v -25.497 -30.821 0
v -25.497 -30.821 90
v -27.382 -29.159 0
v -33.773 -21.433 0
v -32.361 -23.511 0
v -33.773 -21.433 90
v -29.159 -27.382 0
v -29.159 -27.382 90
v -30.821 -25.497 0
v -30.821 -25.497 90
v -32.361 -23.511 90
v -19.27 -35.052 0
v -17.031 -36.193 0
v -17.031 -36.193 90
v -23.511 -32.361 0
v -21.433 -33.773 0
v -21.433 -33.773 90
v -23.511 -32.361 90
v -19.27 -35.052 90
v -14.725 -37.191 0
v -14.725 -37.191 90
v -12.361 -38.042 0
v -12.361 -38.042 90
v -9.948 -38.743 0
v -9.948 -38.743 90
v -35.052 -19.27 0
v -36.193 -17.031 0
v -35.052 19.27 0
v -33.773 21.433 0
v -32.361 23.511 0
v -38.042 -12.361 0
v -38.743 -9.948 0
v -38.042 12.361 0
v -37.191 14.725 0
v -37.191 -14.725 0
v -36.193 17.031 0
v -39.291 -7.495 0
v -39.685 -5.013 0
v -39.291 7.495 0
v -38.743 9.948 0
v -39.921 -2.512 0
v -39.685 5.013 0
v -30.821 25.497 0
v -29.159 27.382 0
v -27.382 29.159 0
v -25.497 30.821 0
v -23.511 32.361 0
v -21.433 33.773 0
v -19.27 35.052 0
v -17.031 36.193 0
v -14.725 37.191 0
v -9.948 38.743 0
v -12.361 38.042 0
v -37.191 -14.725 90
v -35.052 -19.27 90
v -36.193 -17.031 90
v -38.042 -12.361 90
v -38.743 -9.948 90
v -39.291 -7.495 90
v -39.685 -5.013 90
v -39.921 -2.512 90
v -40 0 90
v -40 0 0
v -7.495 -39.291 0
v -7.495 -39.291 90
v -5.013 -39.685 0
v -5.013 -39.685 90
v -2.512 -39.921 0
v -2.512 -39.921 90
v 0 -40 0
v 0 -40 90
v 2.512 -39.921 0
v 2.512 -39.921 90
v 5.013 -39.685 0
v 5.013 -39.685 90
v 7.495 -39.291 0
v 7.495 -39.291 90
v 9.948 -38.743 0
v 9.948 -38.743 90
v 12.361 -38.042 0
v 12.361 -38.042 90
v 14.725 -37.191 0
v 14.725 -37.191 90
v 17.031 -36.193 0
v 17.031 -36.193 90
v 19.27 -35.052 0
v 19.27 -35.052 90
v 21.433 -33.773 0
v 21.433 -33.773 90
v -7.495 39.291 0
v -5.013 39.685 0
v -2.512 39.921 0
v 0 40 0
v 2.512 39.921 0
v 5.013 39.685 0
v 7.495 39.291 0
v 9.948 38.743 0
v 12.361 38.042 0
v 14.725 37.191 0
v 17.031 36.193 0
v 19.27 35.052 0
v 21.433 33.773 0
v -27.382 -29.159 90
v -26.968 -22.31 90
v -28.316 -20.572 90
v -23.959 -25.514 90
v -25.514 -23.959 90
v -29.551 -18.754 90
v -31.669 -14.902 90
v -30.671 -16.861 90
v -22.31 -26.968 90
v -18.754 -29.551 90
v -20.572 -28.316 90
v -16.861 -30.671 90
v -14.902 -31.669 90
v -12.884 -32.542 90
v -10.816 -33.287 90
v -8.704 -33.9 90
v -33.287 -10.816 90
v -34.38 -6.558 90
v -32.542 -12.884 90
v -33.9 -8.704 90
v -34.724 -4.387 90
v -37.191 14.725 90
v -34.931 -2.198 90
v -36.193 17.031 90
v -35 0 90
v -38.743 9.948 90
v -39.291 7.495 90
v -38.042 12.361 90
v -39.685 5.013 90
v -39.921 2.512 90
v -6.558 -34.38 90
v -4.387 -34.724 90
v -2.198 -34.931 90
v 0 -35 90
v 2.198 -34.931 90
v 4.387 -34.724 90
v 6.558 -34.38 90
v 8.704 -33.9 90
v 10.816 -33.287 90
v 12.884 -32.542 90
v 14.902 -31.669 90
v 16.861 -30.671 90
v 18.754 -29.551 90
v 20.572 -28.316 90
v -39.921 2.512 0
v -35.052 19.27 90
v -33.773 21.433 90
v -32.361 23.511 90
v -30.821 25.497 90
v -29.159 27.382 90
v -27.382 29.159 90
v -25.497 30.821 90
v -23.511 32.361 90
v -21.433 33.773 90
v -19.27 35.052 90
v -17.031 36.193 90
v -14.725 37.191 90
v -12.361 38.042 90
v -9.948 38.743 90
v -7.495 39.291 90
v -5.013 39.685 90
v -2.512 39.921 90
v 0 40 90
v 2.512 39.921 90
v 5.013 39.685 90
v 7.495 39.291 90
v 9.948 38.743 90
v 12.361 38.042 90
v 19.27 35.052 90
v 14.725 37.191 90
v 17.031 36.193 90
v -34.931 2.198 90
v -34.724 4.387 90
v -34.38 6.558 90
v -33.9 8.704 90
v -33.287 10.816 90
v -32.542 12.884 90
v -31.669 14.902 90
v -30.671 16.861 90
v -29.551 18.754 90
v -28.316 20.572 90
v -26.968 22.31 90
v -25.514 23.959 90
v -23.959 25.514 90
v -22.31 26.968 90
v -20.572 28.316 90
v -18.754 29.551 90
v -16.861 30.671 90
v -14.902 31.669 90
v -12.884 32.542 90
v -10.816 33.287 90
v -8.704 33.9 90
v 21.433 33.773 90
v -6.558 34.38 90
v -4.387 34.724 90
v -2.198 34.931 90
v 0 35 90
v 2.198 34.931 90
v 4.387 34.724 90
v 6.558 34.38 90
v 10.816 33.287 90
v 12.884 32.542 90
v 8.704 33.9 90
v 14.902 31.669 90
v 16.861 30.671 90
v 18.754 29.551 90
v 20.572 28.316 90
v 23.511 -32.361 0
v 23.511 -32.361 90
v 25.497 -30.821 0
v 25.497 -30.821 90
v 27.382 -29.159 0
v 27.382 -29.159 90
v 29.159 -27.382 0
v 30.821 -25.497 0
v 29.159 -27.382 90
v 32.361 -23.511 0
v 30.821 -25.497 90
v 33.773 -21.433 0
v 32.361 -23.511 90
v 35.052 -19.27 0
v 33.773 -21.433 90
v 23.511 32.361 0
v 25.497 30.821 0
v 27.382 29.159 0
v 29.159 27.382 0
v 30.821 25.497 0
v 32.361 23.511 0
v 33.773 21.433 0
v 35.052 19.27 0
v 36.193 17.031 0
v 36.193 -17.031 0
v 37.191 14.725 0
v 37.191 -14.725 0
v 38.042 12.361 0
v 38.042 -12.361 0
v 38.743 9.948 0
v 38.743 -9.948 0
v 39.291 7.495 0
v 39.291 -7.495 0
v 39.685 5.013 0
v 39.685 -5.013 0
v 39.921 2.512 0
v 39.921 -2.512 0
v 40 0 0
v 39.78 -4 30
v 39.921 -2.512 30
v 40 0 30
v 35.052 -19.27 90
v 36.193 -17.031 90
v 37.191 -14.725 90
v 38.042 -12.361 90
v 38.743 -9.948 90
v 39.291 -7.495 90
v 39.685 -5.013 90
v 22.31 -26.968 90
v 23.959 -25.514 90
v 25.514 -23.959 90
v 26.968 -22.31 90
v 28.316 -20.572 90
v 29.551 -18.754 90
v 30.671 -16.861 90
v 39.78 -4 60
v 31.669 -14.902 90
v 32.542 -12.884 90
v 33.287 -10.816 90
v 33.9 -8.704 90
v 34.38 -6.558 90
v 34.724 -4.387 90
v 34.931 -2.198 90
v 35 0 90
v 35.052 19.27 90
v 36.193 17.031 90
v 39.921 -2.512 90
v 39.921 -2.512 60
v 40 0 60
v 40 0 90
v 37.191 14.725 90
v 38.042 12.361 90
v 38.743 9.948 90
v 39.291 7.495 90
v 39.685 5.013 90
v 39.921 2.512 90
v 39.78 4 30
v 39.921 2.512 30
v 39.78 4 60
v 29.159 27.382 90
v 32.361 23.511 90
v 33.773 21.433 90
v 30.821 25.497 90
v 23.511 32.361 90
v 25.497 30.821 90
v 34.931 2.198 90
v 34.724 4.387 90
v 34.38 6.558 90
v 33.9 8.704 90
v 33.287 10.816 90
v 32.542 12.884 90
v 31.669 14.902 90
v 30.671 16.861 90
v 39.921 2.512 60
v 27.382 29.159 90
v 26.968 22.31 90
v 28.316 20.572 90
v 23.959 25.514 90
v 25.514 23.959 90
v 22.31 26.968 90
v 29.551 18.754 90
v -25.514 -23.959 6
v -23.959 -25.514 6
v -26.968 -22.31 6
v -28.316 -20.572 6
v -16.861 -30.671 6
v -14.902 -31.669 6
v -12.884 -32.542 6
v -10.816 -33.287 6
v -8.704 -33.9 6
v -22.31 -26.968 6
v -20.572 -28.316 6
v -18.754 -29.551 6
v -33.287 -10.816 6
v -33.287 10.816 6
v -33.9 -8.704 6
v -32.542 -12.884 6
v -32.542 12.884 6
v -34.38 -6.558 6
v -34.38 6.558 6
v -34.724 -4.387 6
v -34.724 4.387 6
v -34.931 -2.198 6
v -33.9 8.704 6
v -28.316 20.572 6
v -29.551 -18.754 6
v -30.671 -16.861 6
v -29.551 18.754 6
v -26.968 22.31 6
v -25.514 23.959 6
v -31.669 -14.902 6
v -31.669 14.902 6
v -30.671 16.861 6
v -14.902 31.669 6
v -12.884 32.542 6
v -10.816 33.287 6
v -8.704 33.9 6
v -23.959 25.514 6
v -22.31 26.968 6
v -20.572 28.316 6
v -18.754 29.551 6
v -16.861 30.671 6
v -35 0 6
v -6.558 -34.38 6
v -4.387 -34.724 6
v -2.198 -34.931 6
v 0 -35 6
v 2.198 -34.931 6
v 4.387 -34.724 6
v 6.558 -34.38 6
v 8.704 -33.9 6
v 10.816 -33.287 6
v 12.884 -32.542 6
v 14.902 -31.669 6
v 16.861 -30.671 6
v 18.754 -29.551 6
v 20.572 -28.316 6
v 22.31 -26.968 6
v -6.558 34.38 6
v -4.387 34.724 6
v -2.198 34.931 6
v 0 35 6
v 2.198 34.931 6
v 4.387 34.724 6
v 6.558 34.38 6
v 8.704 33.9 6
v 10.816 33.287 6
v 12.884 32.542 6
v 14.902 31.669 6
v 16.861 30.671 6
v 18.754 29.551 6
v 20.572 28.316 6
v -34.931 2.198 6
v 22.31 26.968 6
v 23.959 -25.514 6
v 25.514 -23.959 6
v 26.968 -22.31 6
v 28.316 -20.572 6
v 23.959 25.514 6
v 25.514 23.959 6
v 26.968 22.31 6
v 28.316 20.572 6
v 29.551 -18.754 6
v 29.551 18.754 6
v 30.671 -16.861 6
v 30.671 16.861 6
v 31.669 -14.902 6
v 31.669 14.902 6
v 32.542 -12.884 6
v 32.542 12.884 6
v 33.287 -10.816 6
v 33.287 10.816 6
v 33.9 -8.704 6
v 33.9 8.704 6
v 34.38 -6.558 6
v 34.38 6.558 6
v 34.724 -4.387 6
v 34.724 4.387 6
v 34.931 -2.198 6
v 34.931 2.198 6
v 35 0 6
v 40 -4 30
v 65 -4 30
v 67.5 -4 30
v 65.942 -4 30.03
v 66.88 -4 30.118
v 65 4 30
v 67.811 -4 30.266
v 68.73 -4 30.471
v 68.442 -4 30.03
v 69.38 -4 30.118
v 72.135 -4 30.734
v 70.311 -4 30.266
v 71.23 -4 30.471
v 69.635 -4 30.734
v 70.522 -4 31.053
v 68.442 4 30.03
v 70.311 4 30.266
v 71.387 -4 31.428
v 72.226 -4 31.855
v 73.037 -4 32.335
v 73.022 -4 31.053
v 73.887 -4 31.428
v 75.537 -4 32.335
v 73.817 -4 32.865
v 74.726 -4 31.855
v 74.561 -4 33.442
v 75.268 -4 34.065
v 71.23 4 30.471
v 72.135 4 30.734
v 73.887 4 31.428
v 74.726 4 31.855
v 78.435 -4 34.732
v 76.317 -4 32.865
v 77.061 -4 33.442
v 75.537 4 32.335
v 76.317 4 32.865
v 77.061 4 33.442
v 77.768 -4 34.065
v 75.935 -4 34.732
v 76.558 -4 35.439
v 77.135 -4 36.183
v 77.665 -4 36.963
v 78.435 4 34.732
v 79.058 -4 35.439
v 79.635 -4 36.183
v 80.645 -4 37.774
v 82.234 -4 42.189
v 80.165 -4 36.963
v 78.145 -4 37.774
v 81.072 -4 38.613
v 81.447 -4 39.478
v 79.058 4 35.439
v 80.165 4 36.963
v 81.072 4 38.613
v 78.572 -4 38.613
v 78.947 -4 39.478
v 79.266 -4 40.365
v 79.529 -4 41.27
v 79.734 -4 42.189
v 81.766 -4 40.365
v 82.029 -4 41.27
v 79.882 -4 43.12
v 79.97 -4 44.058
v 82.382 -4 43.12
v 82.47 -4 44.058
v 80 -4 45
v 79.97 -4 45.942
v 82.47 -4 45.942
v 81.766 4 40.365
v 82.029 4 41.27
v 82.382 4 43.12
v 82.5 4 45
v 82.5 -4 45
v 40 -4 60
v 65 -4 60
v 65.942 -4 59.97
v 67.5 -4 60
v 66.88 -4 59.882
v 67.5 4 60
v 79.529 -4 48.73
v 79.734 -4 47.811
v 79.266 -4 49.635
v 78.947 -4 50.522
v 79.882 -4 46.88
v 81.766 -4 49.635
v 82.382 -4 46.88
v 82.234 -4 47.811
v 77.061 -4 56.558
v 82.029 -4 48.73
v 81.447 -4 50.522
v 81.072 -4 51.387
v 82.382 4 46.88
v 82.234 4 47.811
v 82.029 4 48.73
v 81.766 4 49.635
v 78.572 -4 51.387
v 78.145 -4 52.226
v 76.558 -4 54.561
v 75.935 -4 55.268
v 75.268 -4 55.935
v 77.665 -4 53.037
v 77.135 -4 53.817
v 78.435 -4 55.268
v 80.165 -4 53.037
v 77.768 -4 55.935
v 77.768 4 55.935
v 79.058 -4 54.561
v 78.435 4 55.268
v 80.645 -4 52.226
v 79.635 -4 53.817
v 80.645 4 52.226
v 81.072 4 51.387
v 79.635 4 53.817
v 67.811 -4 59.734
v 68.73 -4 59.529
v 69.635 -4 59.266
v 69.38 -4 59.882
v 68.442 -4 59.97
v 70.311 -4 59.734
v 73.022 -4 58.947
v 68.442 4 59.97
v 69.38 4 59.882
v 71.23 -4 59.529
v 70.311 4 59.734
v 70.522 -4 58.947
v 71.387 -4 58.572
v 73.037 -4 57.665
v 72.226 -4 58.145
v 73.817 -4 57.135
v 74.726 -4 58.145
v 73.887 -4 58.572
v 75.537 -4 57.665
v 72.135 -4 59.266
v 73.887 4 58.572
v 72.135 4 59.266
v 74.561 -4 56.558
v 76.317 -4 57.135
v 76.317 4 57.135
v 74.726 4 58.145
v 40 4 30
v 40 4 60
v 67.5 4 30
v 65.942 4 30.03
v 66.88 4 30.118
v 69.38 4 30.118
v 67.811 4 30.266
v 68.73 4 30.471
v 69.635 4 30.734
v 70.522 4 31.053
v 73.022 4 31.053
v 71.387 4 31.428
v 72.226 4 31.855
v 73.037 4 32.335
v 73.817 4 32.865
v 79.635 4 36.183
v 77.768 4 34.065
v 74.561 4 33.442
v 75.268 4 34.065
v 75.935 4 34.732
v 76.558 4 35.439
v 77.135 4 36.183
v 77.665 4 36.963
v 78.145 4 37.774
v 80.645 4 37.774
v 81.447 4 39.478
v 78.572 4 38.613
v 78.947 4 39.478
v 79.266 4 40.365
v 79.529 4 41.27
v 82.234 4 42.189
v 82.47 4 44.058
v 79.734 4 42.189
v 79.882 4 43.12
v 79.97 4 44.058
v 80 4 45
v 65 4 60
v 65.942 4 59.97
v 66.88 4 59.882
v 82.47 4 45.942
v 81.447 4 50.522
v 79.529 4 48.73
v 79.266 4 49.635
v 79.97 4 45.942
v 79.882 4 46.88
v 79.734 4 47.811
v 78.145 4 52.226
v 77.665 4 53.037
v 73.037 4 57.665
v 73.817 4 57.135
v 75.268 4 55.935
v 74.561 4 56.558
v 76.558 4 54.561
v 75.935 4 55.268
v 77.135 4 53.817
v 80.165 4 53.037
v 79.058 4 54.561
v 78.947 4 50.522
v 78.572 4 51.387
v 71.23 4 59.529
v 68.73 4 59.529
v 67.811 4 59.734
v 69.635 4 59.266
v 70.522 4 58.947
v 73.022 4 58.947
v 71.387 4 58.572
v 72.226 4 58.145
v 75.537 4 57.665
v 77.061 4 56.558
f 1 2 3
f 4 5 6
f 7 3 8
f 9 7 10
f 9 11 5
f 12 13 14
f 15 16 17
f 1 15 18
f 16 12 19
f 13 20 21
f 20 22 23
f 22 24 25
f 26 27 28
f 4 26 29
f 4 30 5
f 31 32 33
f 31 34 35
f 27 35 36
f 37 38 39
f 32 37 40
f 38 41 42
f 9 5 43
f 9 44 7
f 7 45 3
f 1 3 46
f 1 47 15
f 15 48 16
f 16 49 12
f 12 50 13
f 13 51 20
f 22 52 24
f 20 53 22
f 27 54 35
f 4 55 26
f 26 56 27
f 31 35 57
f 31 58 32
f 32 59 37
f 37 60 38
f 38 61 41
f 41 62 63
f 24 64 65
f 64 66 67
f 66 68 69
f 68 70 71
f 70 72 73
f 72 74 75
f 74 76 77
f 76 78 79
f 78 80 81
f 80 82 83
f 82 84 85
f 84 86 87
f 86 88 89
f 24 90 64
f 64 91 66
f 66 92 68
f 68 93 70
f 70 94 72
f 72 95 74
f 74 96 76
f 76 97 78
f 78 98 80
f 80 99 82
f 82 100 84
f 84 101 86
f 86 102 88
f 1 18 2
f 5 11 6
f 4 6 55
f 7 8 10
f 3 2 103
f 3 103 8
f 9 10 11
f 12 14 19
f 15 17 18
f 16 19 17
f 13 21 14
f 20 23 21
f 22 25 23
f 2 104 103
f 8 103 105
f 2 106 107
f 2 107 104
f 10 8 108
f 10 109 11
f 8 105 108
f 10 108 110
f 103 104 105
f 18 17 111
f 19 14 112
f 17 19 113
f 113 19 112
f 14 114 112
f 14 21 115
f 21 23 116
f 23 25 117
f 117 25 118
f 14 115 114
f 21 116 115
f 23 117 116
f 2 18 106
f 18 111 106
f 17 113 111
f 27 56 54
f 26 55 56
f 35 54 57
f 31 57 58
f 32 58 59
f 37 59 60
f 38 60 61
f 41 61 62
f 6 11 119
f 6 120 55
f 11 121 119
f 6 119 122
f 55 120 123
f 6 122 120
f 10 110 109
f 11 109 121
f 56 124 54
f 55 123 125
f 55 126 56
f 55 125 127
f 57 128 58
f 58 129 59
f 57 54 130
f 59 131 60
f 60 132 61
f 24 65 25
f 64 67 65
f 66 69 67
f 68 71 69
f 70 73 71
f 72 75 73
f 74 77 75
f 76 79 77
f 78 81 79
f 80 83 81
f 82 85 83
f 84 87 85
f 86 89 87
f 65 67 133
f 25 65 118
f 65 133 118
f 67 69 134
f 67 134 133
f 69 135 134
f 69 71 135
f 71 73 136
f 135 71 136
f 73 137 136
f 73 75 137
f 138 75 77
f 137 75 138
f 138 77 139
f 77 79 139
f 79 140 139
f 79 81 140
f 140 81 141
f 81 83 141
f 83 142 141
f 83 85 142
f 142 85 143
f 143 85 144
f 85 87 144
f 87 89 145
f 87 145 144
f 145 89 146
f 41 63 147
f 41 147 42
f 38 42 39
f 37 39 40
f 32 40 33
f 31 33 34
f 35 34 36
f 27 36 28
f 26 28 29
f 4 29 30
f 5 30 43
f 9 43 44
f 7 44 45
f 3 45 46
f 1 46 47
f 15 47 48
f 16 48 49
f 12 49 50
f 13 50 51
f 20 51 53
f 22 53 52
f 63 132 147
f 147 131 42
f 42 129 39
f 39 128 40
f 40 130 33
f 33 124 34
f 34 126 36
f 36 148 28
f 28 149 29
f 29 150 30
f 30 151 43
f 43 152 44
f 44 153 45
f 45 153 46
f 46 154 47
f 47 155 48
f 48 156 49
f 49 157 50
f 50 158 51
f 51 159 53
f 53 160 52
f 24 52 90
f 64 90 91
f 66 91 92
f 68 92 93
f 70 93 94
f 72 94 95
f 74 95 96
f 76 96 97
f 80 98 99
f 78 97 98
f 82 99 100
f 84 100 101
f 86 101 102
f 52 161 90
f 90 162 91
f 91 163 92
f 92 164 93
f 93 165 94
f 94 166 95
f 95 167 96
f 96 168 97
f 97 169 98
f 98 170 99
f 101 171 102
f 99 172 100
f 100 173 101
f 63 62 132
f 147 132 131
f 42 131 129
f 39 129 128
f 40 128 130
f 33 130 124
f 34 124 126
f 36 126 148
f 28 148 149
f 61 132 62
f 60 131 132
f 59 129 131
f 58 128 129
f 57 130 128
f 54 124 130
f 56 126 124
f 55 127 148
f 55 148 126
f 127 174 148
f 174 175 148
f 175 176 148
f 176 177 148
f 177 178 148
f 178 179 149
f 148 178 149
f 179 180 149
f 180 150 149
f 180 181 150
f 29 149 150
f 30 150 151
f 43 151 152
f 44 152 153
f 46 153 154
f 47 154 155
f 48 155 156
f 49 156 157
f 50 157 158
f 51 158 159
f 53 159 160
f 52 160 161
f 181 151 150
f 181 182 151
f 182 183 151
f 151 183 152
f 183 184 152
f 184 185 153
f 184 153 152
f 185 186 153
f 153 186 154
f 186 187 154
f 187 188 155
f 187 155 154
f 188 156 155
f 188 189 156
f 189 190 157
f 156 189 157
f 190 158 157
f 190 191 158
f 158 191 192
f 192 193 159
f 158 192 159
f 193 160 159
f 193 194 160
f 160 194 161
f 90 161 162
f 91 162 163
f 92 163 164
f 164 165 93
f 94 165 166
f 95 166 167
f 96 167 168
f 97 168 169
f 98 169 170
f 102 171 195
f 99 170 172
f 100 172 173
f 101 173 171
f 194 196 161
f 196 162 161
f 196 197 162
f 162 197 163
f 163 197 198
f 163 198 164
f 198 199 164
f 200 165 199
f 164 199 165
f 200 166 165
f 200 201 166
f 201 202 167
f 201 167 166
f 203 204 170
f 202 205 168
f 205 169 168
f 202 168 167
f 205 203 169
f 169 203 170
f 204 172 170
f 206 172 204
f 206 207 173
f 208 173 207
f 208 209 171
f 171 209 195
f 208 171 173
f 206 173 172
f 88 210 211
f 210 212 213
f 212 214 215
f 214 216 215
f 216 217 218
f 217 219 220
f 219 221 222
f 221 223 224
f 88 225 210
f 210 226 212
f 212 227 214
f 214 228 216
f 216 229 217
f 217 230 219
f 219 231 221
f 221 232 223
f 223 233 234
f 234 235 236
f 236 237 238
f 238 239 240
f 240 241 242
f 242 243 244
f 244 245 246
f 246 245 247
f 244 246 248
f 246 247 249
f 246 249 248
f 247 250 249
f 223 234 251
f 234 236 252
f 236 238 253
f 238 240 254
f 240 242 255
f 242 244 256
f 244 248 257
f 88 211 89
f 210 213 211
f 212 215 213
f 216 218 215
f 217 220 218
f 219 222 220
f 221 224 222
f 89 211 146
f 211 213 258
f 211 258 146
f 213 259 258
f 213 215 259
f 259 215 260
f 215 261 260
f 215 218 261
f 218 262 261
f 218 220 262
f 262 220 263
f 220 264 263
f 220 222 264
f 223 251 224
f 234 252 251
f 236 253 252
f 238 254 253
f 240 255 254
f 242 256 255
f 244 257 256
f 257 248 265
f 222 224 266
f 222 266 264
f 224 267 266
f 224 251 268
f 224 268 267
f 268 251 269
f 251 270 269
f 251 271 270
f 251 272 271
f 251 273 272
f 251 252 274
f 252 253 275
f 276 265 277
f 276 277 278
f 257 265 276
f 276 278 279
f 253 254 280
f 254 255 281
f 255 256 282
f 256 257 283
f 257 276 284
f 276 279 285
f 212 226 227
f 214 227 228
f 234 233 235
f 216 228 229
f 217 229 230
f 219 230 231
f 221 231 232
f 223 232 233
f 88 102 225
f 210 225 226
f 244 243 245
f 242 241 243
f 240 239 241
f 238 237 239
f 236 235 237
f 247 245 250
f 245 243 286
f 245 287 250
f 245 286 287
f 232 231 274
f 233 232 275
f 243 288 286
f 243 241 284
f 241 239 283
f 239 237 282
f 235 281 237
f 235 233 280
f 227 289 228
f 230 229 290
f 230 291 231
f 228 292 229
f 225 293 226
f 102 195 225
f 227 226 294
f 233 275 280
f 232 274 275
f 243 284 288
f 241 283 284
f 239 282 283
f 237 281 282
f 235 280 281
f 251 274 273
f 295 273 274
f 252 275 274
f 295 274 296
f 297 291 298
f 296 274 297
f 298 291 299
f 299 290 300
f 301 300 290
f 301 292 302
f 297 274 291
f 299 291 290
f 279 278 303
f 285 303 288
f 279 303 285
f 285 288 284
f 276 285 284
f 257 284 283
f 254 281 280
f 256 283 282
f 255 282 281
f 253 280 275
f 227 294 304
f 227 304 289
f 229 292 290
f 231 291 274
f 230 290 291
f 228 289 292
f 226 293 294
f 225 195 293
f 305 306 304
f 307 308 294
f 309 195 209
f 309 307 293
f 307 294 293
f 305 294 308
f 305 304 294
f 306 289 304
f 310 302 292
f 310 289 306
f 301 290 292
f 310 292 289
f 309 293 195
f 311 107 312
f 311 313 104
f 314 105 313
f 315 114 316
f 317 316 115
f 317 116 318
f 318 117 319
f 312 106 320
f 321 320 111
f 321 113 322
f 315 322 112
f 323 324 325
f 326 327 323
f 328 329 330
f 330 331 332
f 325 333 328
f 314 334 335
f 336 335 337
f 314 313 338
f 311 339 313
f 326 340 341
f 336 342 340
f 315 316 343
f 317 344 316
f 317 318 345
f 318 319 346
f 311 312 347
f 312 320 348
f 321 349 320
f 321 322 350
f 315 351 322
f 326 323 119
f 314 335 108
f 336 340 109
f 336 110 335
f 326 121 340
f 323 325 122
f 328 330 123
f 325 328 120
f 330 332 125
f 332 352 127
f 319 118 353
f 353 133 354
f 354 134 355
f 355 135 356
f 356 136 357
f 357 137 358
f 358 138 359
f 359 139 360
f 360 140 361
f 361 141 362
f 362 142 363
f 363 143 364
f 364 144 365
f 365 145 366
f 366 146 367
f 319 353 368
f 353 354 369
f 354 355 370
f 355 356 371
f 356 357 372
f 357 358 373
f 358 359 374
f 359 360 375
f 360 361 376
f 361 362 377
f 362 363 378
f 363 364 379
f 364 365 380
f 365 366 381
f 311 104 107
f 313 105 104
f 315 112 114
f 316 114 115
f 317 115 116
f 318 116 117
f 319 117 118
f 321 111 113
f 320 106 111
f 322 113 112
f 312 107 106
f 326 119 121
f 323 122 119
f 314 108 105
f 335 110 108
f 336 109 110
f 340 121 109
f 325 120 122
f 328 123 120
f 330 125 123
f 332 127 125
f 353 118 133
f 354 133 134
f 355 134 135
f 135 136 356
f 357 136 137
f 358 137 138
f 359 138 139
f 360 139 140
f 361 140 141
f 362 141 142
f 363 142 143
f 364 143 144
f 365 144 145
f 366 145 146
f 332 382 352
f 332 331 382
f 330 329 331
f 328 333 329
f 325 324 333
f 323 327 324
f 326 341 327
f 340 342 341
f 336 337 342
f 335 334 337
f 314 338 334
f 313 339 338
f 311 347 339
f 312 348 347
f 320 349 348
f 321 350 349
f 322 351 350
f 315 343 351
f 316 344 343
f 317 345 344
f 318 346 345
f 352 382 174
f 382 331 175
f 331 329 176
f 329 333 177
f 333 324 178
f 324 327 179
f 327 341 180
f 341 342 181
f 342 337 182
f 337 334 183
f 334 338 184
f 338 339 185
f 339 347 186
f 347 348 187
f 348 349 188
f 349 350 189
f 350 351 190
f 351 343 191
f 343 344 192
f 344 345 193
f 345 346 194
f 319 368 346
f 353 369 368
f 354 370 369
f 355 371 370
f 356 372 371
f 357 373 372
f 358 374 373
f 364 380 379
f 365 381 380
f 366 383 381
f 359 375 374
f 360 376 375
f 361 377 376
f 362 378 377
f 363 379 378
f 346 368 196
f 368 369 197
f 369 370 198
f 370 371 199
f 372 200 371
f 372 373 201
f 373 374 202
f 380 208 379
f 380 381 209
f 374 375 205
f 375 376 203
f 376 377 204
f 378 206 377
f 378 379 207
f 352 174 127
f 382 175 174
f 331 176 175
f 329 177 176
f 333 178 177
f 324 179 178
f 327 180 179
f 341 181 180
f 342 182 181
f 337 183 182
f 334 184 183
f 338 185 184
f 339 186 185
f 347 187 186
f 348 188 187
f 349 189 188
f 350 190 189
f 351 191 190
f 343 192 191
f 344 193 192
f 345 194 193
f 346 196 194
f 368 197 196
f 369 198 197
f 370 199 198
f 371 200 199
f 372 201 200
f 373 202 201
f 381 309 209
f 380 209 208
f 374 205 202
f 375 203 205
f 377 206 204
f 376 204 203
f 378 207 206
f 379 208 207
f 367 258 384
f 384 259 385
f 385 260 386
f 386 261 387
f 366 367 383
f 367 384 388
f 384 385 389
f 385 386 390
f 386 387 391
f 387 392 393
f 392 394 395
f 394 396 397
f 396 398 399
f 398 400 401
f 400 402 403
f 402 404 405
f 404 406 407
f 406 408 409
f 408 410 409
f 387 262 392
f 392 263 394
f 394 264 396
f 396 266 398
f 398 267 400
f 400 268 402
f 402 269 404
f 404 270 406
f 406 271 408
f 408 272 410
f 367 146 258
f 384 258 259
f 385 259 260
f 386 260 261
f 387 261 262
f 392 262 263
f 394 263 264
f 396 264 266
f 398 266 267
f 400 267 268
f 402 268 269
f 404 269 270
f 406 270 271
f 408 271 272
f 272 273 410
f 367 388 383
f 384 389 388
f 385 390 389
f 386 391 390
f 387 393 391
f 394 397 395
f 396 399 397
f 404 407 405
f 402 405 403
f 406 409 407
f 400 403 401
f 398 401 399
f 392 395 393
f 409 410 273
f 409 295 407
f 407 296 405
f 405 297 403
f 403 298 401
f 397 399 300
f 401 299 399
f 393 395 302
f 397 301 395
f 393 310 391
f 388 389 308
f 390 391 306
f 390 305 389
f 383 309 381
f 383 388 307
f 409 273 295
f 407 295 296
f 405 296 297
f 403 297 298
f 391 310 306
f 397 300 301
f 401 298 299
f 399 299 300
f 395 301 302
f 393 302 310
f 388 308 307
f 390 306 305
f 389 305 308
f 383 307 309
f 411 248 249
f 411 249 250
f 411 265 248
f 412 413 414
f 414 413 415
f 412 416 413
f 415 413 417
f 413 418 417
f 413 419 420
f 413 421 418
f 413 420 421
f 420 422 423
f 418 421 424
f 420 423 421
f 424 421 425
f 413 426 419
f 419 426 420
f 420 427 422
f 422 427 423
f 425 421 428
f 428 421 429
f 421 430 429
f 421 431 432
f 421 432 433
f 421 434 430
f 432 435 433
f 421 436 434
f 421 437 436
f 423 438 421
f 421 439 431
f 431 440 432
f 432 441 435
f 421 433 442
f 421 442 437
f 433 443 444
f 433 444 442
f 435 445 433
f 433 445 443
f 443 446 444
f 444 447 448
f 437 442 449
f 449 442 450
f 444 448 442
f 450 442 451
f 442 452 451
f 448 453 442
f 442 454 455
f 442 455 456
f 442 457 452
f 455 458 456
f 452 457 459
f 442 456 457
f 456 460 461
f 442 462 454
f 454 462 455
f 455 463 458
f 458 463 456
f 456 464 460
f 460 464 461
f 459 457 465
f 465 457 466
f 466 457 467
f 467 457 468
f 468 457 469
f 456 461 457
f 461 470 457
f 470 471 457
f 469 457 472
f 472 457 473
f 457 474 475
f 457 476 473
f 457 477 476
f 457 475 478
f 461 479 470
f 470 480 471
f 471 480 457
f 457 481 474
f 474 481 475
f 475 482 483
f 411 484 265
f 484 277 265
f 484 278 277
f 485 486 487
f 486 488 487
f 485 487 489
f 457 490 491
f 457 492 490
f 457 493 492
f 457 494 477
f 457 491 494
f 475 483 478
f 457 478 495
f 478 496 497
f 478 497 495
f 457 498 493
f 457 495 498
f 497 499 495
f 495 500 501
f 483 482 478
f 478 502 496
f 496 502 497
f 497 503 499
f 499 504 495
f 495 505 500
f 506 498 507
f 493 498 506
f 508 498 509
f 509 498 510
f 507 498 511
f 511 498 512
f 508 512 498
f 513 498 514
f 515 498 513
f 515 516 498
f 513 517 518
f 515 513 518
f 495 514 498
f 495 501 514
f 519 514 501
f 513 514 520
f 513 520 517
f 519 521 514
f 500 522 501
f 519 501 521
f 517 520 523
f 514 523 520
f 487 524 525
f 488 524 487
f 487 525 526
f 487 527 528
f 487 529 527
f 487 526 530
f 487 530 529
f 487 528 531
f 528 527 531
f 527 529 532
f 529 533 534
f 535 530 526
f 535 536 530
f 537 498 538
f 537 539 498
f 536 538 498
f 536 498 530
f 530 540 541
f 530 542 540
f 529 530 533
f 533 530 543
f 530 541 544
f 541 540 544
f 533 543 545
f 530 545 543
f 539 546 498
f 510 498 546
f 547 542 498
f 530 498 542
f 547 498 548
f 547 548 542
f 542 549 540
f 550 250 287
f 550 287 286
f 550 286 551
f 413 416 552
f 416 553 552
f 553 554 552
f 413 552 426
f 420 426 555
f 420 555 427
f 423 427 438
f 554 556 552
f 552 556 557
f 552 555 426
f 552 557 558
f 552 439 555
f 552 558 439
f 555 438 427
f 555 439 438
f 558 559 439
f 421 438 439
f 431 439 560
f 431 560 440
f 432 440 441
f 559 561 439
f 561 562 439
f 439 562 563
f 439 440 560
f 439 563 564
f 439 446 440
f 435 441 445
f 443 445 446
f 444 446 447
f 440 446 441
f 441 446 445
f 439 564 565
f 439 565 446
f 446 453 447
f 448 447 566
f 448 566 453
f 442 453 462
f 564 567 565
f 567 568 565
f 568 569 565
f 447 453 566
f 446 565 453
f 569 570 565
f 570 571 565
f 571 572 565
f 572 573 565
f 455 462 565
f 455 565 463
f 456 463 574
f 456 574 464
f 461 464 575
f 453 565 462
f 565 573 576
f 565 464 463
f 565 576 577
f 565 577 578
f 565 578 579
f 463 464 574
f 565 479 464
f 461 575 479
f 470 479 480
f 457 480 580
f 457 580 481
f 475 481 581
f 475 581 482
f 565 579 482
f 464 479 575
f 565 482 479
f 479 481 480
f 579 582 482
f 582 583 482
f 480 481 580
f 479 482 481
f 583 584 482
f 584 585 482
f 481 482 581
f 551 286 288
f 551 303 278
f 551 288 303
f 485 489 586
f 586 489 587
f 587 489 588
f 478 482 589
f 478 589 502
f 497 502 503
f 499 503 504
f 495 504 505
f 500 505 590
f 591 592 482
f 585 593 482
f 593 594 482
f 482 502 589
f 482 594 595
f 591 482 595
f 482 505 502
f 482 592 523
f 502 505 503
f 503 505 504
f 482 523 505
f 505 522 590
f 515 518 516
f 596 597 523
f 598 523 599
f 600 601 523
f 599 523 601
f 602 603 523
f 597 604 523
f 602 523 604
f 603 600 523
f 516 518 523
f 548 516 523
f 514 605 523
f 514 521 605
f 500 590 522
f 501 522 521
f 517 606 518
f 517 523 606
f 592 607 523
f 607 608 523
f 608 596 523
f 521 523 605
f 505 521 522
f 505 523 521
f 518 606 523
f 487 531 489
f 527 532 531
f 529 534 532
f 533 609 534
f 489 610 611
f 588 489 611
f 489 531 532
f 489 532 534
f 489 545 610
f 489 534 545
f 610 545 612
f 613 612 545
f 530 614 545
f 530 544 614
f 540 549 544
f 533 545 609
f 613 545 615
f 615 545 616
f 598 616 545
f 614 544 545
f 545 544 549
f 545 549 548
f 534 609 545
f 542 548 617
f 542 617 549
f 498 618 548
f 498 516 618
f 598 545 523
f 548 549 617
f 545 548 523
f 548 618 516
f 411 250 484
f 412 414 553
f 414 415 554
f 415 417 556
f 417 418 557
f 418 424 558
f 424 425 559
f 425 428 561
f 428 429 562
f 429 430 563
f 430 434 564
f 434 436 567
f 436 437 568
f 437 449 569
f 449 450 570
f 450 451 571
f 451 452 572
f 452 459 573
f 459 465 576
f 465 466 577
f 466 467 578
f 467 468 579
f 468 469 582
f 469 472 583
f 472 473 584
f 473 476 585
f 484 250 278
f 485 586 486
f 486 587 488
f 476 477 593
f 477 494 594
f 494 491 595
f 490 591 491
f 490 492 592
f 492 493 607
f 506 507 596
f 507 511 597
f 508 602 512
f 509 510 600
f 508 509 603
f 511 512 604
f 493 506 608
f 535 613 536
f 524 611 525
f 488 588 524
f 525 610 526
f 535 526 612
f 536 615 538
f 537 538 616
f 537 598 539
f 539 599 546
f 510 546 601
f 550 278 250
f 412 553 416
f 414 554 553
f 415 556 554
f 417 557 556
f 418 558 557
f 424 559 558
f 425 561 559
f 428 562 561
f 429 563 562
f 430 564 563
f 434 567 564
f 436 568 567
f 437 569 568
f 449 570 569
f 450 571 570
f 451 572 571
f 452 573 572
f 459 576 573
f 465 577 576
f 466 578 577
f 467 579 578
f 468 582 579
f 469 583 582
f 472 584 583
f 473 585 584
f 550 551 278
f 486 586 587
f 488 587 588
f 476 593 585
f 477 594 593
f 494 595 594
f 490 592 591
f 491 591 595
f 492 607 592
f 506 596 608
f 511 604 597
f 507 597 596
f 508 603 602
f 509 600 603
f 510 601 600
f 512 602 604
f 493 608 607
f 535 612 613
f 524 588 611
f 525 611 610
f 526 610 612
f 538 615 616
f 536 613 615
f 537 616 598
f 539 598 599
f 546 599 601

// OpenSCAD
$fn = 100;

// マグカップ本体
difference() {
    // 外側の円筒
    cylinder(h = 90, r = 40, center = false);
    // 内側をくり抜く
    translate([0, 0, 6])
        cylinder(h = 90, r = 35, center = false);
}

// 取手（+X方向）
translate([35, 0, 45]) {
    difference() {
        // 取手の外側形状（D字型）
        hull() {
            // 本体側の接続部
            translate([0, -4, -15])
                cube([10, 8, 30]);
            // 外側の半円部分
            translate([32.5, 0, 0])
                rotate([90, 0, 0])
                    cylinder(h = 8, r = 15, center = true);
        }
        // 取手の内側をくり抜く（高さ30mm × 幅25mm）
        hull() {
            translate([5, -5, -15])
                cube([1, 10, 30]);
            translate([30, 0, 0])
                rotate([90, 0, 0])
                    cylinder(h = 10, r = 15, center = true);
        }
    }
}
